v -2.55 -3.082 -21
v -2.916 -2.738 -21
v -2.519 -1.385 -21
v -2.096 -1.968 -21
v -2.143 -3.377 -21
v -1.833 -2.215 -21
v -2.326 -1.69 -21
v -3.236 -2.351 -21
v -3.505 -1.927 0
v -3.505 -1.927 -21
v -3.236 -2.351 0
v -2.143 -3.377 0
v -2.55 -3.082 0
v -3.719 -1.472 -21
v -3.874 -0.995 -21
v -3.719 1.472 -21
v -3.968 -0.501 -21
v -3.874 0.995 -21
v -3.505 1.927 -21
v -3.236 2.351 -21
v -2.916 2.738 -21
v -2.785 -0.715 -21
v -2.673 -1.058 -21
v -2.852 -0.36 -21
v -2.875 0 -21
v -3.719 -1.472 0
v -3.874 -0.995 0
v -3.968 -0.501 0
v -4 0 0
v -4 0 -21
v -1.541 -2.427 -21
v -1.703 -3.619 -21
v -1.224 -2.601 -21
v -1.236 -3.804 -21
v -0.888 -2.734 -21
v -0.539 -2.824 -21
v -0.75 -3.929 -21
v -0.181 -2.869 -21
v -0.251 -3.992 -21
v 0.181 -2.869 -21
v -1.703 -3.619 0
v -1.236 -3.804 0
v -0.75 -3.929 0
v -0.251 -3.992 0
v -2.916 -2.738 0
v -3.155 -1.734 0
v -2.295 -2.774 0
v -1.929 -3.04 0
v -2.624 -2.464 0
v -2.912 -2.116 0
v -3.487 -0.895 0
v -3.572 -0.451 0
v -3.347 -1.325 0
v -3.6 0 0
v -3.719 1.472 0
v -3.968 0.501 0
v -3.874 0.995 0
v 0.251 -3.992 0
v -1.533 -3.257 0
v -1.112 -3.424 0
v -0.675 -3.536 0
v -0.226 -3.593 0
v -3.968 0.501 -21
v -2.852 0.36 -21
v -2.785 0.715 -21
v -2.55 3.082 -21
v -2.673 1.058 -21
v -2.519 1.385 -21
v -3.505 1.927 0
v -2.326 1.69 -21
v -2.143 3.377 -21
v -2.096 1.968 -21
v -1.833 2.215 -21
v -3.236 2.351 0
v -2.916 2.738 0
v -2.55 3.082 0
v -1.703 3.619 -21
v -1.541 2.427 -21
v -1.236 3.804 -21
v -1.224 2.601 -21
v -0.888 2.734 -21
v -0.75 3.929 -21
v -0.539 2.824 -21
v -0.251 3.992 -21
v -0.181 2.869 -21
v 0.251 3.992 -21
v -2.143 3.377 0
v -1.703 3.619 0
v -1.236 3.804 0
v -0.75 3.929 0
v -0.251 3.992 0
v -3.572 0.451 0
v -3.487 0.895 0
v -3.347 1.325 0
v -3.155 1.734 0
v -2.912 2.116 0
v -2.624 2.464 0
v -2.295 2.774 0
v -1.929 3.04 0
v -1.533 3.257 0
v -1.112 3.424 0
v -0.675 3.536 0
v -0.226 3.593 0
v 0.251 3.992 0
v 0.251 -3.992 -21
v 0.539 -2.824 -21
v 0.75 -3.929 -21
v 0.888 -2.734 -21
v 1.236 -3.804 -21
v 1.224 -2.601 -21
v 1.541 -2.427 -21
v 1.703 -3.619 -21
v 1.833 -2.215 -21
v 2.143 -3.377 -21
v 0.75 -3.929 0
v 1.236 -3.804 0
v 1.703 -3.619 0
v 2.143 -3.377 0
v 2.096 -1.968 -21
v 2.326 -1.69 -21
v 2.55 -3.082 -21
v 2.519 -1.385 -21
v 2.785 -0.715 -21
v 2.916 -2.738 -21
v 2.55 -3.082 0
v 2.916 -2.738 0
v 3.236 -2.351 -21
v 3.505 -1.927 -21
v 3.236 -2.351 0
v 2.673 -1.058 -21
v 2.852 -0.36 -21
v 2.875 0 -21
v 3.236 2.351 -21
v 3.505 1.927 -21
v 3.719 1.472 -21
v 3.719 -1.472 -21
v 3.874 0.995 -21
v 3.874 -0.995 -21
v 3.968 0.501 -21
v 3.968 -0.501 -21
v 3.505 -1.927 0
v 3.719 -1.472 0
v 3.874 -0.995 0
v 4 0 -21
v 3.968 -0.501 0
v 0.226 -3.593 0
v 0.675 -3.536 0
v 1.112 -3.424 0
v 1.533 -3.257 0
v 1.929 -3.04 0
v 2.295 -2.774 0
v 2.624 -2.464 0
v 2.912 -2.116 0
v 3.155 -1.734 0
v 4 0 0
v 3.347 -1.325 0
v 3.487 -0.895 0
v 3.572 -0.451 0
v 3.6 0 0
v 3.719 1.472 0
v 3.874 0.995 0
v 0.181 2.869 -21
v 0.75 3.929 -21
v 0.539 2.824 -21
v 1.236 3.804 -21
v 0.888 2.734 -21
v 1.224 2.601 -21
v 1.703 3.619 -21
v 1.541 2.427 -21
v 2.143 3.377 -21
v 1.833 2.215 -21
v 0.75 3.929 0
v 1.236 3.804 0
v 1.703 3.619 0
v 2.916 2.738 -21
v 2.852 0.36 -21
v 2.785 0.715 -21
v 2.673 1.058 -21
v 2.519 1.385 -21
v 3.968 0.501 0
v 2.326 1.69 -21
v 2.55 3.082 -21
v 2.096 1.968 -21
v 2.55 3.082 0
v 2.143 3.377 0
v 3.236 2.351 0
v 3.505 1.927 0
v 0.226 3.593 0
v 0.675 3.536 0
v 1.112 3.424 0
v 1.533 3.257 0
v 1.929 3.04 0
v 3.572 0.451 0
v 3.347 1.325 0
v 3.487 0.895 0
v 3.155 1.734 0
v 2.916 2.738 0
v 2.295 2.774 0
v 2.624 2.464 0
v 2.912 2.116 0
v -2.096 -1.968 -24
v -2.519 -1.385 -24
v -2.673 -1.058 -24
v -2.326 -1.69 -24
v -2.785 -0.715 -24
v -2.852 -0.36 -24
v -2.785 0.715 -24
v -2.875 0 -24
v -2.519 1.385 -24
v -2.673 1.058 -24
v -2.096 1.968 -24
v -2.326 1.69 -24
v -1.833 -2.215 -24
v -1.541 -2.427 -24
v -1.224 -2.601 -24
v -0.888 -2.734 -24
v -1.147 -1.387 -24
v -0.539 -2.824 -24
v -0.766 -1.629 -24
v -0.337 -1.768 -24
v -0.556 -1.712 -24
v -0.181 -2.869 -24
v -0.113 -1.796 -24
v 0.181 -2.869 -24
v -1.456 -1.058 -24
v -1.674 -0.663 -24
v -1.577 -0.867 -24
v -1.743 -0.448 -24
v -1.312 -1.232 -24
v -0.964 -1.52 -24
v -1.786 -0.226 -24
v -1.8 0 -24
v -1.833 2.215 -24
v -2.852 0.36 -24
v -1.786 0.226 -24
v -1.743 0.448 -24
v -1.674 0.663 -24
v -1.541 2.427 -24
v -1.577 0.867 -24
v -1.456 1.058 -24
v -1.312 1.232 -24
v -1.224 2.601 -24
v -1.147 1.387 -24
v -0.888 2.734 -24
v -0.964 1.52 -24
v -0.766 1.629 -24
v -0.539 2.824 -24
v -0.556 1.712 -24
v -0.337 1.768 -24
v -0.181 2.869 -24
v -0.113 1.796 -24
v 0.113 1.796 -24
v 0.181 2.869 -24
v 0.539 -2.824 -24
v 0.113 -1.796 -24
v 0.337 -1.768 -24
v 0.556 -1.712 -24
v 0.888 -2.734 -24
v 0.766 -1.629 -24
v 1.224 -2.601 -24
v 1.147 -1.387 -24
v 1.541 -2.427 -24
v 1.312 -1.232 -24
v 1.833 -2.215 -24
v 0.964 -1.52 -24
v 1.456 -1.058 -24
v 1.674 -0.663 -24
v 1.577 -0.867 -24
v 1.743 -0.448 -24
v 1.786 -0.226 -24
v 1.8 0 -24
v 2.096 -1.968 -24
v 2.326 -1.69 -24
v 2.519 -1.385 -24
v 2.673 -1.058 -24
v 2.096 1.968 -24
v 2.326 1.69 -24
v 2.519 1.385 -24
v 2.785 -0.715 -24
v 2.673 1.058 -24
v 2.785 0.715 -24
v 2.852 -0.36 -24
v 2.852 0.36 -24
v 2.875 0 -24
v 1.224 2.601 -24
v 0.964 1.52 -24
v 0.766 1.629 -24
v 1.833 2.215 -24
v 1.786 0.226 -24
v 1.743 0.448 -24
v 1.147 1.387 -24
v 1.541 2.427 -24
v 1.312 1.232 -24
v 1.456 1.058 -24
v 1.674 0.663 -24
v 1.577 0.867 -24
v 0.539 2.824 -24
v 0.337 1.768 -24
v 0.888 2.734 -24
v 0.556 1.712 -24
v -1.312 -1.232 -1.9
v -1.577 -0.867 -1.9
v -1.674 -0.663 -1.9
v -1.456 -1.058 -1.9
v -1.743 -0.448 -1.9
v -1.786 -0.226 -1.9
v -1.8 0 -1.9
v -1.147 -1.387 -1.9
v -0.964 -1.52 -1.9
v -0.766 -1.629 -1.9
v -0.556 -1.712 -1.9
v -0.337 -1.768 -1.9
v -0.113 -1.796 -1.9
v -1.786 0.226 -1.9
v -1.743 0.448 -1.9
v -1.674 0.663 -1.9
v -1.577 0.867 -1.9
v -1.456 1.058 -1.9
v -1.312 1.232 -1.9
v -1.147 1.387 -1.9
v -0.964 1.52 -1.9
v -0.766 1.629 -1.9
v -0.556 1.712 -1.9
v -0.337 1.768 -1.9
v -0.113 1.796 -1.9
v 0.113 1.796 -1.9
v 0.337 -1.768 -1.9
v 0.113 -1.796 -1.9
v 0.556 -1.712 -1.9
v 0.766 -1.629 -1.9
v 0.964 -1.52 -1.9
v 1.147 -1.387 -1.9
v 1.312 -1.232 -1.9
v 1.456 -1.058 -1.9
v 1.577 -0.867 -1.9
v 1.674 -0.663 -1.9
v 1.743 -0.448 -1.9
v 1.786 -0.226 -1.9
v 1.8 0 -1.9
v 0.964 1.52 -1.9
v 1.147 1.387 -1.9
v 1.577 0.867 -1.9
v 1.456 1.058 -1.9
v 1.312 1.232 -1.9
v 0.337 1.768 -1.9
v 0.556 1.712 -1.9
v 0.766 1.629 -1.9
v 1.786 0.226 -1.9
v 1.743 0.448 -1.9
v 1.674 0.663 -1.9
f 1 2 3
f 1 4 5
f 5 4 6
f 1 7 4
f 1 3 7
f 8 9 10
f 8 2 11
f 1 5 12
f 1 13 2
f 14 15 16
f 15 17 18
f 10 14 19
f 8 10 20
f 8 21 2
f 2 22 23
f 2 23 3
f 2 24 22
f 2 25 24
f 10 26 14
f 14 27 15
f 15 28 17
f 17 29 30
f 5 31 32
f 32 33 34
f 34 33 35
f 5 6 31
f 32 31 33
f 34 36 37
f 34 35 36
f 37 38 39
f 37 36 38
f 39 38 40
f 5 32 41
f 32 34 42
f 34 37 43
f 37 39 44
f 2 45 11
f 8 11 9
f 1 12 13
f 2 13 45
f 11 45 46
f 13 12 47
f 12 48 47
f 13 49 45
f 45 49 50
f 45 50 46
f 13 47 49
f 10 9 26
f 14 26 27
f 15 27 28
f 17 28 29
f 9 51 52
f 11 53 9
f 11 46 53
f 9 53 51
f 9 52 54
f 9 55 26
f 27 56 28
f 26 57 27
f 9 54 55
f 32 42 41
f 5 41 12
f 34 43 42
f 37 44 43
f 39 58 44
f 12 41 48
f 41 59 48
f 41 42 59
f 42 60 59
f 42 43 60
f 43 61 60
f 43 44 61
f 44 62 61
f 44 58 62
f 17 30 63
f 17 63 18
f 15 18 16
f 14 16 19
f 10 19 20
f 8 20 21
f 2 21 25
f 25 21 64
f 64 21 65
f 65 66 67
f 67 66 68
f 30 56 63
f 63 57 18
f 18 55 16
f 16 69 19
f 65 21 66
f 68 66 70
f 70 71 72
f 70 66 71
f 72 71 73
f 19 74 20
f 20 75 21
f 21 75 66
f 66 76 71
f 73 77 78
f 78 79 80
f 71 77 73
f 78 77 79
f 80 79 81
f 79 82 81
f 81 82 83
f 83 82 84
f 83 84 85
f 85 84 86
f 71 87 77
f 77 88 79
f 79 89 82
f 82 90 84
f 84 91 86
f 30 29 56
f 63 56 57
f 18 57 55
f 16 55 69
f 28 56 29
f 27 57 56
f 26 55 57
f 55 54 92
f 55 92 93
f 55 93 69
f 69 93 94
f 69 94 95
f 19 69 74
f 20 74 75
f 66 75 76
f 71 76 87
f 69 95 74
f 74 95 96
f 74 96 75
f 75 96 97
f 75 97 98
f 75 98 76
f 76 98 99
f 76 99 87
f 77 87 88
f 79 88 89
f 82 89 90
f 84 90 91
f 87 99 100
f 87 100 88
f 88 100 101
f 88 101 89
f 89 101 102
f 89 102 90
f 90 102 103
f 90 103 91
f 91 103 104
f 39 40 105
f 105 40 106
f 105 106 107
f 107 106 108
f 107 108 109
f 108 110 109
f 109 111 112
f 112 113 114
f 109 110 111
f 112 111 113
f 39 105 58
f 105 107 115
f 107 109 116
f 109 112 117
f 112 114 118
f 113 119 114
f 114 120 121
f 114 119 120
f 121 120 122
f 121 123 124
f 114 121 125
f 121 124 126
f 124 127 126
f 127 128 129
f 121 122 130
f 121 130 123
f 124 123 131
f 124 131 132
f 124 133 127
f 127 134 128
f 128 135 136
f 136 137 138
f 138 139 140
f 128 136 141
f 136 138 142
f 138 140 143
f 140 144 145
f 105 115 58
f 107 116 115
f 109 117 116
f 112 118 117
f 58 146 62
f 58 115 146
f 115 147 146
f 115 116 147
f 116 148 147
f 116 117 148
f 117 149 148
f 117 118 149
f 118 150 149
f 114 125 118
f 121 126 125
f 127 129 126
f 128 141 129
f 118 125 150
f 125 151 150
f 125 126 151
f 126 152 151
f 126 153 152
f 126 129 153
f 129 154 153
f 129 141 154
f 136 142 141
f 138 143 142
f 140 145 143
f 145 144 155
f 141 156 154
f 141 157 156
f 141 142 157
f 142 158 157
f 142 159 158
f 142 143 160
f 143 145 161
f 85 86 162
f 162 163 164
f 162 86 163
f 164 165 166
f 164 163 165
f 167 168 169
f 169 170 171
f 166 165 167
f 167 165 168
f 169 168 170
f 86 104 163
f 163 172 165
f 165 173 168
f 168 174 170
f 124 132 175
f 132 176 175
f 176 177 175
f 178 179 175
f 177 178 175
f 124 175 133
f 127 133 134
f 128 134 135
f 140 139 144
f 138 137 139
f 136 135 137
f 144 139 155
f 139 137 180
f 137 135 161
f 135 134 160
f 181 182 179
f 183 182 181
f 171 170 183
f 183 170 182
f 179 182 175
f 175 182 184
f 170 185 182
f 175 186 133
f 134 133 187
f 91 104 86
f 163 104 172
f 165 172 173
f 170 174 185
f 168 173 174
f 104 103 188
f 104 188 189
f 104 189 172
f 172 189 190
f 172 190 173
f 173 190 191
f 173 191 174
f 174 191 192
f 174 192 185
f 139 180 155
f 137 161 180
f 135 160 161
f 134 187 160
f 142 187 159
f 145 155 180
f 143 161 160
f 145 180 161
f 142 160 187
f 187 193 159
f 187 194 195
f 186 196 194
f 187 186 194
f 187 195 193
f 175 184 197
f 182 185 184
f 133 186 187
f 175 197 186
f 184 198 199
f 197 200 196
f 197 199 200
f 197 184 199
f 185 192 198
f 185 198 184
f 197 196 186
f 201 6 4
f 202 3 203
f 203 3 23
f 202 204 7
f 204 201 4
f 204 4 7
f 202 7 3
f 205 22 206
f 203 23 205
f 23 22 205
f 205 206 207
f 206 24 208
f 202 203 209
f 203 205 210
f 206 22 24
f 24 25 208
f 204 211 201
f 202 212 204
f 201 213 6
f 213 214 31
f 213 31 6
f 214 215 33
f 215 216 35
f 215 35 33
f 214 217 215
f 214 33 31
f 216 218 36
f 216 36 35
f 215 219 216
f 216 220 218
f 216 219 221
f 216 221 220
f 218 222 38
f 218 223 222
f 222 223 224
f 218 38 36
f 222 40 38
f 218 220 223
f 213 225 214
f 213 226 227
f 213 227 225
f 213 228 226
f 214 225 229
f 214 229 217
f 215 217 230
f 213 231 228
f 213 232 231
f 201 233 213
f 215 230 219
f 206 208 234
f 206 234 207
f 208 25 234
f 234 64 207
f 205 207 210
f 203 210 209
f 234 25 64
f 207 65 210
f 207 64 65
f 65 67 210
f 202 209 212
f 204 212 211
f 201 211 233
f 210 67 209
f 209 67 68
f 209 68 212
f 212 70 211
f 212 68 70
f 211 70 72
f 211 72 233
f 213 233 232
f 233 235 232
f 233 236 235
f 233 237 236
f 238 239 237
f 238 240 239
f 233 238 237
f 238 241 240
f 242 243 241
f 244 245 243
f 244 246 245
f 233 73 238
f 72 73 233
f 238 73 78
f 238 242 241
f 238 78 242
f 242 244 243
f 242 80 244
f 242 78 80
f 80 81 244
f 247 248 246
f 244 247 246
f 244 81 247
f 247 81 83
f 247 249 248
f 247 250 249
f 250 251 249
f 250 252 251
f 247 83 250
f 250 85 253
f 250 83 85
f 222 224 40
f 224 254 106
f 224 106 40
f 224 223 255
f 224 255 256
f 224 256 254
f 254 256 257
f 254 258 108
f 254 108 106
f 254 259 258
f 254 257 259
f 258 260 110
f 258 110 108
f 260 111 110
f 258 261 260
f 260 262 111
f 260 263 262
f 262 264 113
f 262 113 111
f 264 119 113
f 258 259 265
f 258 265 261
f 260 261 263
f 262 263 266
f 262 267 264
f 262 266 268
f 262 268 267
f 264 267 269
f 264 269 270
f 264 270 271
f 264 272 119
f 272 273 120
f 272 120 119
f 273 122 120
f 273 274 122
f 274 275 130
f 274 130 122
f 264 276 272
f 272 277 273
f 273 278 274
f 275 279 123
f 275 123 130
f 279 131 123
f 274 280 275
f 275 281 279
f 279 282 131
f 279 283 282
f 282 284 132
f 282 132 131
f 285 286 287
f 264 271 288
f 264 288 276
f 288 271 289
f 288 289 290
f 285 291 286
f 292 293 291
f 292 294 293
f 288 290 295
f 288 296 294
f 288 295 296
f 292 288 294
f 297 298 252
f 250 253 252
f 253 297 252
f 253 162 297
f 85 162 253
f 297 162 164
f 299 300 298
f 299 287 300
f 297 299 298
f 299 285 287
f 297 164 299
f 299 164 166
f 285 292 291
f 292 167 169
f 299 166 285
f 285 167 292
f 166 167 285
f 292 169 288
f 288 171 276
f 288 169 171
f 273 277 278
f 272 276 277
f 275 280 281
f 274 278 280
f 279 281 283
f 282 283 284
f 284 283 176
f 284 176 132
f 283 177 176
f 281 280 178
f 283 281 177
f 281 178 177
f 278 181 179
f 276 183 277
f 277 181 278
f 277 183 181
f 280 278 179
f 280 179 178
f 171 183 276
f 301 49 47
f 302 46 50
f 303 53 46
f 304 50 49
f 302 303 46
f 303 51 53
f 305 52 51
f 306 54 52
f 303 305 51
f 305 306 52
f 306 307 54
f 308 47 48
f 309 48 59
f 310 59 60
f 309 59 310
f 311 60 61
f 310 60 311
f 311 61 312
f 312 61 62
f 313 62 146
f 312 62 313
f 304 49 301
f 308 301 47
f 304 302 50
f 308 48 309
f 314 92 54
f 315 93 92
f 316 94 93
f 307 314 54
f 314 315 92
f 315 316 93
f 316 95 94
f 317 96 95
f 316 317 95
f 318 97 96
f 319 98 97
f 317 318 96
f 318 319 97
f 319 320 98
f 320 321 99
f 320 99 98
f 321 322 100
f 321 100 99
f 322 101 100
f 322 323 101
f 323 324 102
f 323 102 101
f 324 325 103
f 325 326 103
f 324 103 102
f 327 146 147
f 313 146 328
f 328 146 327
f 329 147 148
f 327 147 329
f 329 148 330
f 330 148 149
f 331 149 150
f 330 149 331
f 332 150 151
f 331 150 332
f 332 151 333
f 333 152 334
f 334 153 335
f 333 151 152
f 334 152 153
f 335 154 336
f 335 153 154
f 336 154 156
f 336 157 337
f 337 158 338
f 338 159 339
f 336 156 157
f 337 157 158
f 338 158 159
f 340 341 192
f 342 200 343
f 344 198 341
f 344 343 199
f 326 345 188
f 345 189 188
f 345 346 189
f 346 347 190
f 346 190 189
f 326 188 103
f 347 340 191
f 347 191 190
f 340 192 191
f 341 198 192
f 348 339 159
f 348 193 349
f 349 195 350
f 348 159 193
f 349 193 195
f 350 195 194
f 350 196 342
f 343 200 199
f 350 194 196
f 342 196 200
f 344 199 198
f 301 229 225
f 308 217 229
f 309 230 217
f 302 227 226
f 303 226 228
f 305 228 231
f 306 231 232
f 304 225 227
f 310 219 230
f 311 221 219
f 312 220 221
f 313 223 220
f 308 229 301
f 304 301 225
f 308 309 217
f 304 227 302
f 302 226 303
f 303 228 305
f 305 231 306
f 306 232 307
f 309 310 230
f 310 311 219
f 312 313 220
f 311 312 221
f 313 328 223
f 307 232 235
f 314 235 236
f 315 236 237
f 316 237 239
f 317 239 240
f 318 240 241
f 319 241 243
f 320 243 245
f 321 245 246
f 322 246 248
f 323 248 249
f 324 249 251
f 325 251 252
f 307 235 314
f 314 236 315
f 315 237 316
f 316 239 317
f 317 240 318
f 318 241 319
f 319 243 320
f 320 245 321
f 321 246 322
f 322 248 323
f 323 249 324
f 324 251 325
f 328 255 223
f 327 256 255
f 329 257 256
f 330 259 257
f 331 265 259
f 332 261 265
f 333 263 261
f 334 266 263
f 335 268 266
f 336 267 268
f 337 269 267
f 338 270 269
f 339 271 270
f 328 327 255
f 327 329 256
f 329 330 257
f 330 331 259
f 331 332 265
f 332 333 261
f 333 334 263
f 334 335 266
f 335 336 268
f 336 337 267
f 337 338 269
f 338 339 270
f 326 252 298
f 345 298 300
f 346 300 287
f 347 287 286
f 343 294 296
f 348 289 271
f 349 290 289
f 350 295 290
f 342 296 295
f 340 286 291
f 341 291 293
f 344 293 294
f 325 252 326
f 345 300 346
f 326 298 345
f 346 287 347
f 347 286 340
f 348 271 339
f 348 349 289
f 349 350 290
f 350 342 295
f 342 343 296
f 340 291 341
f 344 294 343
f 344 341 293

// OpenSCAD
$fn = 50;

difference() {
	union() {
		translate(v = [0, 0, -21.0]) {
			cylinder(h = 24, r = 4.0);
		}
		#translate(v = [0, 0, -24.0]) {
			cylinder(h = 24, r = 2.875);
		}
	}
	union() {
		translate(v = [0, 0, 0]) {
			rotate(a = [0, 0, 0]) {
				difference() {
					union() {
						translate(v = [0, 0, -24.0]) {
							cylinder(h = 24, r = 1.5);
						}
						translate(v = [0, 0, -1.9]) {
							cylinder(h = 1.9, r1 = 1.8, r2 = 3.6);
						}
						translate(v = [0, 0, -24.0]) {
							cylinder(h = 24, r = 1.8);
						}
						translate(v = [0, 0, -24.0]) {
							cylinder(h = 24, r = 1.5);
						}
					}
					union();
				}
			}
		}
		#cylinder(h = 3, r = 5.0);
	}
}
